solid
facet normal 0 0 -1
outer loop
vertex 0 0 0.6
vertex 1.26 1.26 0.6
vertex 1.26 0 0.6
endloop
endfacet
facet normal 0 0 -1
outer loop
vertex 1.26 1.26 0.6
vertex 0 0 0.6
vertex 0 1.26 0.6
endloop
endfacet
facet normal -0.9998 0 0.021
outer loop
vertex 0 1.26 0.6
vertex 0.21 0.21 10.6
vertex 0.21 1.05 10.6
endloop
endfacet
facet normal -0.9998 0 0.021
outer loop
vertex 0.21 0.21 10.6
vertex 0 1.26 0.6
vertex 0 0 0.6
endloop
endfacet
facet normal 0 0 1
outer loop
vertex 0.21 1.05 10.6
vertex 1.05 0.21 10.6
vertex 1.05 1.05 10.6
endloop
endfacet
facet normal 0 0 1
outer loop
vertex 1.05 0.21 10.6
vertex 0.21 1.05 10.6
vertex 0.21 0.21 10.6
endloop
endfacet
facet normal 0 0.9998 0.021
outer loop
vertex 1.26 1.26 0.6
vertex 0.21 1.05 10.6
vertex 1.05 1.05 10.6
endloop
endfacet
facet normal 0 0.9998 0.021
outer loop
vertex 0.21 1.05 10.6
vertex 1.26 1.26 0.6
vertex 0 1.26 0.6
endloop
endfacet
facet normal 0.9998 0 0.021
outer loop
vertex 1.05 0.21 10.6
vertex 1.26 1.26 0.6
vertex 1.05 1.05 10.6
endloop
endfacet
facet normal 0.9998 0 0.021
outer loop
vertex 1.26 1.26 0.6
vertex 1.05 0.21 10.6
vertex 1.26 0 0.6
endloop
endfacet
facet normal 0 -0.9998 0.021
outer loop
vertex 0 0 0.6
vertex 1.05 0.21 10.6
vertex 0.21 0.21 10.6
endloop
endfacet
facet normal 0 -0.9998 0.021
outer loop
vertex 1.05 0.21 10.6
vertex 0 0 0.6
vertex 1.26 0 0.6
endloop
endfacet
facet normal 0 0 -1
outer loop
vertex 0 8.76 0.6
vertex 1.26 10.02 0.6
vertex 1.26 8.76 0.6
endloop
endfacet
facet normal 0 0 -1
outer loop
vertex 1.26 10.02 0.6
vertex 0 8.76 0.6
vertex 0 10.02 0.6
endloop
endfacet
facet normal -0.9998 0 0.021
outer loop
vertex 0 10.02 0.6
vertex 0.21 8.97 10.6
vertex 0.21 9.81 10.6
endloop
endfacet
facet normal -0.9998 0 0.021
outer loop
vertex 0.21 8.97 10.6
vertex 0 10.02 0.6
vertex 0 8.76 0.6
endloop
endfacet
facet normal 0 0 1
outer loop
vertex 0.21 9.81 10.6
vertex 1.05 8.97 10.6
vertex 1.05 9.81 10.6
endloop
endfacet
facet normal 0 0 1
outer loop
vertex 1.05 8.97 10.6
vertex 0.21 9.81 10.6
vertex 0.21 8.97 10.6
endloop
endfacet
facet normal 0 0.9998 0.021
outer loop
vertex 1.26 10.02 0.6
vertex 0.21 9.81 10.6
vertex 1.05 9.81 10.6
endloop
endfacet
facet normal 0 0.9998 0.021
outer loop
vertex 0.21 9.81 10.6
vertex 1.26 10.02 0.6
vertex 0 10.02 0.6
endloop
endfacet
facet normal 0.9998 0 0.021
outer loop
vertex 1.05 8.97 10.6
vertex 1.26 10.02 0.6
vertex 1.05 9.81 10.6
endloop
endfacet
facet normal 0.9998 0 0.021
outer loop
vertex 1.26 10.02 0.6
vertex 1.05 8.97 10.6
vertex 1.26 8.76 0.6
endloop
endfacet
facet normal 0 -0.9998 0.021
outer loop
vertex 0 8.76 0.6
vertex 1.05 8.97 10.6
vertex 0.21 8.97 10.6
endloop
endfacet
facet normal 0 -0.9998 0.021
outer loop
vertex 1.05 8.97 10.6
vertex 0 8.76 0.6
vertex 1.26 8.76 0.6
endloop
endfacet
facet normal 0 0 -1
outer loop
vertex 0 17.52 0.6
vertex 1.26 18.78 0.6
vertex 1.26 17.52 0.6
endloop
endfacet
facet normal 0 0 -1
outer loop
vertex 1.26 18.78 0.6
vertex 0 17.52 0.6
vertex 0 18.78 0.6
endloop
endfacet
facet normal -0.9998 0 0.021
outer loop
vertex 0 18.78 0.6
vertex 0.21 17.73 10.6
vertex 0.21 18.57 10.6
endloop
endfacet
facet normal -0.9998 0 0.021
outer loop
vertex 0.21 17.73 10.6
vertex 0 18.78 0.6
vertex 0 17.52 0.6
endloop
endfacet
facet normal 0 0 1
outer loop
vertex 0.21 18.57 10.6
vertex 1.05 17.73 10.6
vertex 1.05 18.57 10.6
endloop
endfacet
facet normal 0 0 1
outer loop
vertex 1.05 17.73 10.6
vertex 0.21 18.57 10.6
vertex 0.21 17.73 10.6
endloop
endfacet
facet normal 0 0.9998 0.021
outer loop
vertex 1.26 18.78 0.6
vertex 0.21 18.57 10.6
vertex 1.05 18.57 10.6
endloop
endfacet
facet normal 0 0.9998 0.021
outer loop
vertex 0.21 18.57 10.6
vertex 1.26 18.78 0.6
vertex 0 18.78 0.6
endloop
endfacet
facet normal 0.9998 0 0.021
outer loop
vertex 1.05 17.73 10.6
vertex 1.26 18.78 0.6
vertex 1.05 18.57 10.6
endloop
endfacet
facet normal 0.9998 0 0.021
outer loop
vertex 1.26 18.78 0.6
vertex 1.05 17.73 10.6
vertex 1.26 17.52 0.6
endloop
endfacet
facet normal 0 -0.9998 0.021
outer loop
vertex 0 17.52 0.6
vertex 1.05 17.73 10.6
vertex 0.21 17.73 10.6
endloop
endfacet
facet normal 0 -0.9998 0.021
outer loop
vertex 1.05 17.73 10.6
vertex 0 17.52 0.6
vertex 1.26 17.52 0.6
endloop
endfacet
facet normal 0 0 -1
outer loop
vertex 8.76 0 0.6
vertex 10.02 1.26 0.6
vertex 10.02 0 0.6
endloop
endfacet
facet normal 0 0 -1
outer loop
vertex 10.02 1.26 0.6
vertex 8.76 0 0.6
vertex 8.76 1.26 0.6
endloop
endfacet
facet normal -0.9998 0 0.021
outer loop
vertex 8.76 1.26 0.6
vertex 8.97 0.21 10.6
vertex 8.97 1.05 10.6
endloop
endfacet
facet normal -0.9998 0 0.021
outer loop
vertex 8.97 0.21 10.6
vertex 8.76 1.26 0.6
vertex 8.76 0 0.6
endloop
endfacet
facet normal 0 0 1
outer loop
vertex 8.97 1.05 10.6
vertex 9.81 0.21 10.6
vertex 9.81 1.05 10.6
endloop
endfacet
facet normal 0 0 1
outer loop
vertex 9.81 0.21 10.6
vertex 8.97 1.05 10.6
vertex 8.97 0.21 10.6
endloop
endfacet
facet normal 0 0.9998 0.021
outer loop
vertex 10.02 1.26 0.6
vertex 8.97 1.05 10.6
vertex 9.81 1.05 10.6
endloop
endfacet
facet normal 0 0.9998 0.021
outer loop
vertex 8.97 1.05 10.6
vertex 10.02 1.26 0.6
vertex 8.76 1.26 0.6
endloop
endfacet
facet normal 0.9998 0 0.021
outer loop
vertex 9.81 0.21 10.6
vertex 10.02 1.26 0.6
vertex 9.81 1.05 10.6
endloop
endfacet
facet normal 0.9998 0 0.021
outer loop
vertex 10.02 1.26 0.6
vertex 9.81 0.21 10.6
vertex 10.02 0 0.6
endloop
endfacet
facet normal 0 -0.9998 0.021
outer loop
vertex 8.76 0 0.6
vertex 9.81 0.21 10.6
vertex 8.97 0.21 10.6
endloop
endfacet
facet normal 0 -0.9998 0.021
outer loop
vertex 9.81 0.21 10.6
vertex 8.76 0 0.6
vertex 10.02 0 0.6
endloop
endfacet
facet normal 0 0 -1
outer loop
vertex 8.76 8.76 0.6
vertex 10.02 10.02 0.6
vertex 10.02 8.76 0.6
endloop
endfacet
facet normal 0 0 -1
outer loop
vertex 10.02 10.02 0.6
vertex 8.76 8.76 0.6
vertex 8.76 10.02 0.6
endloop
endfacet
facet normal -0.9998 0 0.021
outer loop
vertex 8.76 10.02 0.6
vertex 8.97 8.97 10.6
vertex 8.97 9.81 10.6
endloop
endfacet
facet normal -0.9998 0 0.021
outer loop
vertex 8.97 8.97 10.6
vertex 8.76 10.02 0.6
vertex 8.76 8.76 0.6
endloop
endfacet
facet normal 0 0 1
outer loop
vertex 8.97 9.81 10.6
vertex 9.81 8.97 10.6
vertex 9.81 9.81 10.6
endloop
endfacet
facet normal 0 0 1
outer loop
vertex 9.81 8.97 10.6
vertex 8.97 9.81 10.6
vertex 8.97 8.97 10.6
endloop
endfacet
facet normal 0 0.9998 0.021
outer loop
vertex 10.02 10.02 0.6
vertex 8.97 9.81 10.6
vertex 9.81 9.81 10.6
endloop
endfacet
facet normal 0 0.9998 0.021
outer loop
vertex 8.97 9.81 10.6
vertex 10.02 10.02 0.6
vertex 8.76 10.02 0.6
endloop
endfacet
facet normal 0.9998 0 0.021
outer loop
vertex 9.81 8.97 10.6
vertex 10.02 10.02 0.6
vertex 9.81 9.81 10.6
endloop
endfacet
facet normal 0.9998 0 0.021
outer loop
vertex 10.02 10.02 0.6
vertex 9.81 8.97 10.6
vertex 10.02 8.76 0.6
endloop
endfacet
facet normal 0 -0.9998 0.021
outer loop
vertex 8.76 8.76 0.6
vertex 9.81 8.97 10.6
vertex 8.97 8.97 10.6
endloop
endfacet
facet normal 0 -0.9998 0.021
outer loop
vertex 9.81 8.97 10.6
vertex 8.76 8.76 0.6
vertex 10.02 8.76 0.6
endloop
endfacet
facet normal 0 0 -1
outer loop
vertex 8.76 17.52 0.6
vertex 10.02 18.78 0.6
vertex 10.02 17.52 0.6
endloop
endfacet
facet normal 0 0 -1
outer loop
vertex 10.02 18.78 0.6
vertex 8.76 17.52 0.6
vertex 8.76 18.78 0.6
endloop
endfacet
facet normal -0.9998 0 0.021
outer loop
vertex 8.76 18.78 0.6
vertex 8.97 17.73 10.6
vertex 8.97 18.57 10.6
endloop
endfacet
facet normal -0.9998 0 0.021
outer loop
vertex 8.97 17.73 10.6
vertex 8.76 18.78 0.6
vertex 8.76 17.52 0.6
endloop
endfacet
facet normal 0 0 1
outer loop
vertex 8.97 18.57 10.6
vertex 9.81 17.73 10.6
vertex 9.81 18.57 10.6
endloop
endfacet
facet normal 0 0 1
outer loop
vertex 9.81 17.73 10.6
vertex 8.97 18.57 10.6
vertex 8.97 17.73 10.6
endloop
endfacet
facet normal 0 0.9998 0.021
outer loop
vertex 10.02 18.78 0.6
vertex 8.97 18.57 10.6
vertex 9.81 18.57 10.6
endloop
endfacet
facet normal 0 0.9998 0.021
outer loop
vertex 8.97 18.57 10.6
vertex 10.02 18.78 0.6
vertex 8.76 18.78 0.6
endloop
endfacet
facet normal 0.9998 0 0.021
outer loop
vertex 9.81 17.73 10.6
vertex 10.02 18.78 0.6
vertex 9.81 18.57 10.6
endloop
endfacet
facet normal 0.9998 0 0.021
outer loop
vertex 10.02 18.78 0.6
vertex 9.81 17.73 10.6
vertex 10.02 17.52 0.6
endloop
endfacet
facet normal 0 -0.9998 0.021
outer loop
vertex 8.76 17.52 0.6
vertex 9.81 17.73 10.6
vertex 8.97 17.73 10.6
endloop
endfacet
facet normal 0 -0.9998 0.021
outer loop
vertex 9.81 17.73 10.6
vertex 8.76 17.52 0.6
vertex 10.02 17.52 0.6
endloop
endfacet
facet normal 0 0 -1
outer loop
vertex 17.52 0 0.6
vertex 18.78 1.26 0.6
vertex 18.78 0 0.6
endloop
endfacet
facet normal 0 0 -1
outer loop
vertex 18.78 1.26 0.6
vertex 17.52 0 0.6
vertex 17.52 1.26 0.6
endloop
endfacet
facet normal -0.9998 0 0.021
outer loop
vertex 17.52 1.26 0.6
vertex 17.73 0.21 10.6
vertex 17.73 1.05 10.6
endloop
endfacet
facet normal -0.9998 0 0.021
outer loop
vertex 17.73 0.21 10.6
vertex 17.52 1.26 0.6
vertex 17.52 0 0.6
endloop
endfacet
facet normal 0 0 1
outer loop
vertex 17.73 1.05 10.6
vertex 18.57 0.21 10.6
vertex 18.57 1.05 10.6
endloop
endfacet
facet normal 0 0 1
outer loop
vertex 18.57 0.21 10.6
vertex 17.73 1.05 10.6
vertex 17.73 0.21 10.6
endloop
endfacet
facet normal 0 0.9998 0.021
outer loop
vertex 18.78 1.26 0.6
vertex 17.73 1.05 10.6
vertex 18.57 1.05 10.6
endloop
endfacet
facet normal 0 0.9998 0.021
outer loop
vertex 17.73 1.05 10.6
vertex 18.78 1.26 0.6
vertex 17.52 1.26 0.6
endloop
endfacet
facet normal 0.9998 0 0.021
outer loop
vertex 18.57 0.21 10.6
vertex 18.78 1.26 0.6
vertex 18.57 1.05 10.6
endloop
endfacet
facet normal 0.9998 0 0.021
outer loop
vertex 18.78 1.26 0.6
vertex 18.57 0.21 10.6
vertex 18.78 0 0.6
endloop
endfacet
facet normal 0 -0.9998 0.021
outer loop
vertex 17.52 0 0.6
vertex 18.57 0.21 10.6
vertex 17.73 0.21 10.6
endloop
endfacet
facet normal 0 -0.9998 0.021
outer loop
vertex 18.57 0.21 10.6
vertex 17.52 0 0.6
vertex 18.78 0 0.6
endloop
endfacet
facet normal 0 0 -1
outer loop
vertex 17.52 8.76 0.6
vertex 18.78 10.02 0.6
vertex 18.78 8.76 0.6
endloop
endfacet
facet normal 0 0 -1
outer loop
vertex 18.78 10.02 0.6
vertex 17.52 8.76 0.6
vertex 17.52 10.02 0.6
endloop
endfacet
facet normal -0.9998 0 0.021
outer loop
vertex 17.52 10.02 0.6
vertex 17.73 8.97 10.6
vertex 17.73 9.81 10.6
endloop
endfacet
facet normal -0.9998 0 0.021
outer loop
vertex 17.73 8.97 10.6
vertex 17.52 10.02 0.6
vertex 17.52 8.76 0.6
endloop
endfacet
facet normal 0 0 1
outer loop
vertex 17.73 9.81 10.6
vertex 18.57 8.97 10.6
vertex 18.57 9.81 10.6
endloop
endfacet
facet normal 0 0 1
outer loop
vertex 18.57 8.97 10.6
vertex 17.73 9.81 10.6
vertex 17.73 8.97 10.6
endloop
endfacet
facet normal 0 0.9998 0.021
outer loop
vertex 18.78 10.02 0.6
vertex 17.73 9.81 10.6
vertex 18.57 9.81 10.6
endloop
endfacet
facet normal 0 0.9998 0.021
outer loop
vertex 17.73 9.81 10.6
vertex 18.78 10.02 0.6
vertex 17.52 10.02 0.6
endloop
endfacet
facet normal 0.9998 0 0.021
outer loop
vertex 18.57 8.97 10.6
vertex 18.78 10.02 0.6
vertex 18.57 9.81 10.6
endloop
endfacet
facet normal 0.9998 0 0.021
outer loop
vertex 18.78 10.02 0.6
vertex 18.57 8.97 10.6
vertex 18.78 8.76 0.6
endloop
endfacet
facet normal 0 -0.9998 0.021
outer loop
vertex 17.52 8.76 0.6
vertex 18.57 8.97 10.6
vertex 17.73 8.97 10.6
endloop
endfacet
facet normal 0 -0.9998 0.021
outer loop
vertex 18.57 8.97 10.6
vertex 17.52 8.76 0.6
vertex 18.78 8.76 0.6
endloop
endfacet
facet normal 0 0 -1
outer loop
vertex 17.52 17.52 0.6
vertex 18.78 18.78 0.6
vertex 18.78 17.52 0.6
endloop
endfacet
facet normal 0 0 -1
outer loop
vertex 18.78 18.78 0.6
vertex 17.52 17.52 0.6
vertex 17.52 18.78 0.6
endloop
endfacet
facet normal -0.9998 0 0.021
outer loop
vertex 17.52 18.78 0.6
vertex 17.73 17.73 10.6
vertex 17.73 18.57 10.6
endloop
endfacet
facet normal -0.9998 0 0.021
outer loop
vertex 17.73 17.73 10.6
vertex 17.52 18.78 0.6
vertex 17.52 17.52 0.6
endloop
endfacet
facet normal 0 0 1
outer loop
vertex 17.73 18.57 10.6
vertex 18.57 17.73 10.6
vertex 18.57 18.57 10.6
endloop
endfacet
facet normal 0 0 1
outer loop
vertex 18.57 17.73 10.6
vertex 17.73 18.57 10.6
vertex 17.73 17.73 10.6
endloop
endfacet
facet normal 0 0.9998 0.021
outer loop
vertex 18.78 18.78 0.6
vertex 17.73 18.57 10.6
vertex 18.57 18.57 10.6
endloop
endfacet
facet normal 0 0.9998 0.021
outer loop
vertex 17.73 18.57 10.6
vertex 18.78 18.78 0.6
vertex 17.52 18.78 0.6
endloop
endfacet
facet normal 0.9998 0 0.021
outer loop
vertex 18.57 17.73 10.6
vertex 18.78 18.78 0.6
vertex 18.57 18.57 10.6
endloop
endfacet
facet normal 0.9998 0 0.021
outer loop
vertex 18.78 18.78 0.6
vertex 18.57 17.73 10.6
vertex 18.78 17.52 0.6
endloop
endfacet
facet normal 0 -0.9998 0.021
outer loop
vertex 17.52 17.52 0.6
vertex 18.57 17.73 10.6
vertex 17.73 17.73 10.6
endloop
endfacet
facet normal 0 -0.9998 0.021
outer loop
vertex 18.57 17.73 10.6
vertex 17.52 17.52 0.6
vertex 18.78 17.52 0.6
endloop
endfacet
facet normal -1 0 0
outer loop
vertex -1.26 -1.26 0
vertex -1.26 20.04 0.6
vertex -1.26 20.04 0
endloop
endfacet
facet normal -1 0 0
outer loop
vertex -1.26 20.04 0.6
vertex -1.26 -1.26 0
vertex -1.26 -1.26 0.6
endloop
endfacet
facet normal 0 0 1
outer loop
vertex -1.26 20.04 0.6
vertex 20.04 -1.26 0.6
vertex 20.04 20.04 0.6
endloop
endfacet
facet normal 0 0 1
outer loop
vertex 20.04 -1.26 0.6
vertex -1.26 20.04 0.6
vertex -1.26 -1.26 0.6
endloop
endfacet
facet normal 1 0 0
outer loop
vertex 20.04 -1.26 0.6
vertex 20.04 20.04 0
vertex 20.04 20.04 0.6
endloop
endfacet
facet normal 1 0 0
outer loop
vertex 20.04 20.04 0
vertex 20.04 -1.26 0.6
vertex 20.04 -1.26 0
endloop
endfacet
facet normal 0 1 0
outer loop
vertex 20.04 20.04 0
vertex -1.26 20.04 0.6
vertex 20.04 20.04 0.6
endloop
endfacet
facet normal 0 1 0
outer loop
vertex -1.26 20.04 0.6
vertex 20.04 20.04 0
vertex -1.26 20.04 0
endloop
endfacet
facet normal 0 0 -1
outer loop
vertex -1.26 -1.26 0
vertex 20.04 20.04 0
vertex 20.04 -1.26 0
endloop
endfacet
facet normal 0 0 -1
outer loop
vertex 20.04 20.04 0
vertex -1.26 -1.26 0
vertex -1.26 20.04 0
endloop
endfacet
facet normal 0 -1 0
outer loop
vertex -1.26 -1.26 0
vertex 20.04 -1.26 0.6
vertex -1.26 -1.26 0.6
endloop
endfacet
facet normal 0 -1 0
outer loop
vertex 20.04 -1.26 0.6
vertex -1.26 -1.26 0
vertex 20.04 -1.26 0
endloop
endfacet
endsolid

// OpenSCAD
include <../3d-printer-testing-suite.scad>

/* [Hidden] */
color_scheme = ["lightblue"];
test_type = "stringing";
